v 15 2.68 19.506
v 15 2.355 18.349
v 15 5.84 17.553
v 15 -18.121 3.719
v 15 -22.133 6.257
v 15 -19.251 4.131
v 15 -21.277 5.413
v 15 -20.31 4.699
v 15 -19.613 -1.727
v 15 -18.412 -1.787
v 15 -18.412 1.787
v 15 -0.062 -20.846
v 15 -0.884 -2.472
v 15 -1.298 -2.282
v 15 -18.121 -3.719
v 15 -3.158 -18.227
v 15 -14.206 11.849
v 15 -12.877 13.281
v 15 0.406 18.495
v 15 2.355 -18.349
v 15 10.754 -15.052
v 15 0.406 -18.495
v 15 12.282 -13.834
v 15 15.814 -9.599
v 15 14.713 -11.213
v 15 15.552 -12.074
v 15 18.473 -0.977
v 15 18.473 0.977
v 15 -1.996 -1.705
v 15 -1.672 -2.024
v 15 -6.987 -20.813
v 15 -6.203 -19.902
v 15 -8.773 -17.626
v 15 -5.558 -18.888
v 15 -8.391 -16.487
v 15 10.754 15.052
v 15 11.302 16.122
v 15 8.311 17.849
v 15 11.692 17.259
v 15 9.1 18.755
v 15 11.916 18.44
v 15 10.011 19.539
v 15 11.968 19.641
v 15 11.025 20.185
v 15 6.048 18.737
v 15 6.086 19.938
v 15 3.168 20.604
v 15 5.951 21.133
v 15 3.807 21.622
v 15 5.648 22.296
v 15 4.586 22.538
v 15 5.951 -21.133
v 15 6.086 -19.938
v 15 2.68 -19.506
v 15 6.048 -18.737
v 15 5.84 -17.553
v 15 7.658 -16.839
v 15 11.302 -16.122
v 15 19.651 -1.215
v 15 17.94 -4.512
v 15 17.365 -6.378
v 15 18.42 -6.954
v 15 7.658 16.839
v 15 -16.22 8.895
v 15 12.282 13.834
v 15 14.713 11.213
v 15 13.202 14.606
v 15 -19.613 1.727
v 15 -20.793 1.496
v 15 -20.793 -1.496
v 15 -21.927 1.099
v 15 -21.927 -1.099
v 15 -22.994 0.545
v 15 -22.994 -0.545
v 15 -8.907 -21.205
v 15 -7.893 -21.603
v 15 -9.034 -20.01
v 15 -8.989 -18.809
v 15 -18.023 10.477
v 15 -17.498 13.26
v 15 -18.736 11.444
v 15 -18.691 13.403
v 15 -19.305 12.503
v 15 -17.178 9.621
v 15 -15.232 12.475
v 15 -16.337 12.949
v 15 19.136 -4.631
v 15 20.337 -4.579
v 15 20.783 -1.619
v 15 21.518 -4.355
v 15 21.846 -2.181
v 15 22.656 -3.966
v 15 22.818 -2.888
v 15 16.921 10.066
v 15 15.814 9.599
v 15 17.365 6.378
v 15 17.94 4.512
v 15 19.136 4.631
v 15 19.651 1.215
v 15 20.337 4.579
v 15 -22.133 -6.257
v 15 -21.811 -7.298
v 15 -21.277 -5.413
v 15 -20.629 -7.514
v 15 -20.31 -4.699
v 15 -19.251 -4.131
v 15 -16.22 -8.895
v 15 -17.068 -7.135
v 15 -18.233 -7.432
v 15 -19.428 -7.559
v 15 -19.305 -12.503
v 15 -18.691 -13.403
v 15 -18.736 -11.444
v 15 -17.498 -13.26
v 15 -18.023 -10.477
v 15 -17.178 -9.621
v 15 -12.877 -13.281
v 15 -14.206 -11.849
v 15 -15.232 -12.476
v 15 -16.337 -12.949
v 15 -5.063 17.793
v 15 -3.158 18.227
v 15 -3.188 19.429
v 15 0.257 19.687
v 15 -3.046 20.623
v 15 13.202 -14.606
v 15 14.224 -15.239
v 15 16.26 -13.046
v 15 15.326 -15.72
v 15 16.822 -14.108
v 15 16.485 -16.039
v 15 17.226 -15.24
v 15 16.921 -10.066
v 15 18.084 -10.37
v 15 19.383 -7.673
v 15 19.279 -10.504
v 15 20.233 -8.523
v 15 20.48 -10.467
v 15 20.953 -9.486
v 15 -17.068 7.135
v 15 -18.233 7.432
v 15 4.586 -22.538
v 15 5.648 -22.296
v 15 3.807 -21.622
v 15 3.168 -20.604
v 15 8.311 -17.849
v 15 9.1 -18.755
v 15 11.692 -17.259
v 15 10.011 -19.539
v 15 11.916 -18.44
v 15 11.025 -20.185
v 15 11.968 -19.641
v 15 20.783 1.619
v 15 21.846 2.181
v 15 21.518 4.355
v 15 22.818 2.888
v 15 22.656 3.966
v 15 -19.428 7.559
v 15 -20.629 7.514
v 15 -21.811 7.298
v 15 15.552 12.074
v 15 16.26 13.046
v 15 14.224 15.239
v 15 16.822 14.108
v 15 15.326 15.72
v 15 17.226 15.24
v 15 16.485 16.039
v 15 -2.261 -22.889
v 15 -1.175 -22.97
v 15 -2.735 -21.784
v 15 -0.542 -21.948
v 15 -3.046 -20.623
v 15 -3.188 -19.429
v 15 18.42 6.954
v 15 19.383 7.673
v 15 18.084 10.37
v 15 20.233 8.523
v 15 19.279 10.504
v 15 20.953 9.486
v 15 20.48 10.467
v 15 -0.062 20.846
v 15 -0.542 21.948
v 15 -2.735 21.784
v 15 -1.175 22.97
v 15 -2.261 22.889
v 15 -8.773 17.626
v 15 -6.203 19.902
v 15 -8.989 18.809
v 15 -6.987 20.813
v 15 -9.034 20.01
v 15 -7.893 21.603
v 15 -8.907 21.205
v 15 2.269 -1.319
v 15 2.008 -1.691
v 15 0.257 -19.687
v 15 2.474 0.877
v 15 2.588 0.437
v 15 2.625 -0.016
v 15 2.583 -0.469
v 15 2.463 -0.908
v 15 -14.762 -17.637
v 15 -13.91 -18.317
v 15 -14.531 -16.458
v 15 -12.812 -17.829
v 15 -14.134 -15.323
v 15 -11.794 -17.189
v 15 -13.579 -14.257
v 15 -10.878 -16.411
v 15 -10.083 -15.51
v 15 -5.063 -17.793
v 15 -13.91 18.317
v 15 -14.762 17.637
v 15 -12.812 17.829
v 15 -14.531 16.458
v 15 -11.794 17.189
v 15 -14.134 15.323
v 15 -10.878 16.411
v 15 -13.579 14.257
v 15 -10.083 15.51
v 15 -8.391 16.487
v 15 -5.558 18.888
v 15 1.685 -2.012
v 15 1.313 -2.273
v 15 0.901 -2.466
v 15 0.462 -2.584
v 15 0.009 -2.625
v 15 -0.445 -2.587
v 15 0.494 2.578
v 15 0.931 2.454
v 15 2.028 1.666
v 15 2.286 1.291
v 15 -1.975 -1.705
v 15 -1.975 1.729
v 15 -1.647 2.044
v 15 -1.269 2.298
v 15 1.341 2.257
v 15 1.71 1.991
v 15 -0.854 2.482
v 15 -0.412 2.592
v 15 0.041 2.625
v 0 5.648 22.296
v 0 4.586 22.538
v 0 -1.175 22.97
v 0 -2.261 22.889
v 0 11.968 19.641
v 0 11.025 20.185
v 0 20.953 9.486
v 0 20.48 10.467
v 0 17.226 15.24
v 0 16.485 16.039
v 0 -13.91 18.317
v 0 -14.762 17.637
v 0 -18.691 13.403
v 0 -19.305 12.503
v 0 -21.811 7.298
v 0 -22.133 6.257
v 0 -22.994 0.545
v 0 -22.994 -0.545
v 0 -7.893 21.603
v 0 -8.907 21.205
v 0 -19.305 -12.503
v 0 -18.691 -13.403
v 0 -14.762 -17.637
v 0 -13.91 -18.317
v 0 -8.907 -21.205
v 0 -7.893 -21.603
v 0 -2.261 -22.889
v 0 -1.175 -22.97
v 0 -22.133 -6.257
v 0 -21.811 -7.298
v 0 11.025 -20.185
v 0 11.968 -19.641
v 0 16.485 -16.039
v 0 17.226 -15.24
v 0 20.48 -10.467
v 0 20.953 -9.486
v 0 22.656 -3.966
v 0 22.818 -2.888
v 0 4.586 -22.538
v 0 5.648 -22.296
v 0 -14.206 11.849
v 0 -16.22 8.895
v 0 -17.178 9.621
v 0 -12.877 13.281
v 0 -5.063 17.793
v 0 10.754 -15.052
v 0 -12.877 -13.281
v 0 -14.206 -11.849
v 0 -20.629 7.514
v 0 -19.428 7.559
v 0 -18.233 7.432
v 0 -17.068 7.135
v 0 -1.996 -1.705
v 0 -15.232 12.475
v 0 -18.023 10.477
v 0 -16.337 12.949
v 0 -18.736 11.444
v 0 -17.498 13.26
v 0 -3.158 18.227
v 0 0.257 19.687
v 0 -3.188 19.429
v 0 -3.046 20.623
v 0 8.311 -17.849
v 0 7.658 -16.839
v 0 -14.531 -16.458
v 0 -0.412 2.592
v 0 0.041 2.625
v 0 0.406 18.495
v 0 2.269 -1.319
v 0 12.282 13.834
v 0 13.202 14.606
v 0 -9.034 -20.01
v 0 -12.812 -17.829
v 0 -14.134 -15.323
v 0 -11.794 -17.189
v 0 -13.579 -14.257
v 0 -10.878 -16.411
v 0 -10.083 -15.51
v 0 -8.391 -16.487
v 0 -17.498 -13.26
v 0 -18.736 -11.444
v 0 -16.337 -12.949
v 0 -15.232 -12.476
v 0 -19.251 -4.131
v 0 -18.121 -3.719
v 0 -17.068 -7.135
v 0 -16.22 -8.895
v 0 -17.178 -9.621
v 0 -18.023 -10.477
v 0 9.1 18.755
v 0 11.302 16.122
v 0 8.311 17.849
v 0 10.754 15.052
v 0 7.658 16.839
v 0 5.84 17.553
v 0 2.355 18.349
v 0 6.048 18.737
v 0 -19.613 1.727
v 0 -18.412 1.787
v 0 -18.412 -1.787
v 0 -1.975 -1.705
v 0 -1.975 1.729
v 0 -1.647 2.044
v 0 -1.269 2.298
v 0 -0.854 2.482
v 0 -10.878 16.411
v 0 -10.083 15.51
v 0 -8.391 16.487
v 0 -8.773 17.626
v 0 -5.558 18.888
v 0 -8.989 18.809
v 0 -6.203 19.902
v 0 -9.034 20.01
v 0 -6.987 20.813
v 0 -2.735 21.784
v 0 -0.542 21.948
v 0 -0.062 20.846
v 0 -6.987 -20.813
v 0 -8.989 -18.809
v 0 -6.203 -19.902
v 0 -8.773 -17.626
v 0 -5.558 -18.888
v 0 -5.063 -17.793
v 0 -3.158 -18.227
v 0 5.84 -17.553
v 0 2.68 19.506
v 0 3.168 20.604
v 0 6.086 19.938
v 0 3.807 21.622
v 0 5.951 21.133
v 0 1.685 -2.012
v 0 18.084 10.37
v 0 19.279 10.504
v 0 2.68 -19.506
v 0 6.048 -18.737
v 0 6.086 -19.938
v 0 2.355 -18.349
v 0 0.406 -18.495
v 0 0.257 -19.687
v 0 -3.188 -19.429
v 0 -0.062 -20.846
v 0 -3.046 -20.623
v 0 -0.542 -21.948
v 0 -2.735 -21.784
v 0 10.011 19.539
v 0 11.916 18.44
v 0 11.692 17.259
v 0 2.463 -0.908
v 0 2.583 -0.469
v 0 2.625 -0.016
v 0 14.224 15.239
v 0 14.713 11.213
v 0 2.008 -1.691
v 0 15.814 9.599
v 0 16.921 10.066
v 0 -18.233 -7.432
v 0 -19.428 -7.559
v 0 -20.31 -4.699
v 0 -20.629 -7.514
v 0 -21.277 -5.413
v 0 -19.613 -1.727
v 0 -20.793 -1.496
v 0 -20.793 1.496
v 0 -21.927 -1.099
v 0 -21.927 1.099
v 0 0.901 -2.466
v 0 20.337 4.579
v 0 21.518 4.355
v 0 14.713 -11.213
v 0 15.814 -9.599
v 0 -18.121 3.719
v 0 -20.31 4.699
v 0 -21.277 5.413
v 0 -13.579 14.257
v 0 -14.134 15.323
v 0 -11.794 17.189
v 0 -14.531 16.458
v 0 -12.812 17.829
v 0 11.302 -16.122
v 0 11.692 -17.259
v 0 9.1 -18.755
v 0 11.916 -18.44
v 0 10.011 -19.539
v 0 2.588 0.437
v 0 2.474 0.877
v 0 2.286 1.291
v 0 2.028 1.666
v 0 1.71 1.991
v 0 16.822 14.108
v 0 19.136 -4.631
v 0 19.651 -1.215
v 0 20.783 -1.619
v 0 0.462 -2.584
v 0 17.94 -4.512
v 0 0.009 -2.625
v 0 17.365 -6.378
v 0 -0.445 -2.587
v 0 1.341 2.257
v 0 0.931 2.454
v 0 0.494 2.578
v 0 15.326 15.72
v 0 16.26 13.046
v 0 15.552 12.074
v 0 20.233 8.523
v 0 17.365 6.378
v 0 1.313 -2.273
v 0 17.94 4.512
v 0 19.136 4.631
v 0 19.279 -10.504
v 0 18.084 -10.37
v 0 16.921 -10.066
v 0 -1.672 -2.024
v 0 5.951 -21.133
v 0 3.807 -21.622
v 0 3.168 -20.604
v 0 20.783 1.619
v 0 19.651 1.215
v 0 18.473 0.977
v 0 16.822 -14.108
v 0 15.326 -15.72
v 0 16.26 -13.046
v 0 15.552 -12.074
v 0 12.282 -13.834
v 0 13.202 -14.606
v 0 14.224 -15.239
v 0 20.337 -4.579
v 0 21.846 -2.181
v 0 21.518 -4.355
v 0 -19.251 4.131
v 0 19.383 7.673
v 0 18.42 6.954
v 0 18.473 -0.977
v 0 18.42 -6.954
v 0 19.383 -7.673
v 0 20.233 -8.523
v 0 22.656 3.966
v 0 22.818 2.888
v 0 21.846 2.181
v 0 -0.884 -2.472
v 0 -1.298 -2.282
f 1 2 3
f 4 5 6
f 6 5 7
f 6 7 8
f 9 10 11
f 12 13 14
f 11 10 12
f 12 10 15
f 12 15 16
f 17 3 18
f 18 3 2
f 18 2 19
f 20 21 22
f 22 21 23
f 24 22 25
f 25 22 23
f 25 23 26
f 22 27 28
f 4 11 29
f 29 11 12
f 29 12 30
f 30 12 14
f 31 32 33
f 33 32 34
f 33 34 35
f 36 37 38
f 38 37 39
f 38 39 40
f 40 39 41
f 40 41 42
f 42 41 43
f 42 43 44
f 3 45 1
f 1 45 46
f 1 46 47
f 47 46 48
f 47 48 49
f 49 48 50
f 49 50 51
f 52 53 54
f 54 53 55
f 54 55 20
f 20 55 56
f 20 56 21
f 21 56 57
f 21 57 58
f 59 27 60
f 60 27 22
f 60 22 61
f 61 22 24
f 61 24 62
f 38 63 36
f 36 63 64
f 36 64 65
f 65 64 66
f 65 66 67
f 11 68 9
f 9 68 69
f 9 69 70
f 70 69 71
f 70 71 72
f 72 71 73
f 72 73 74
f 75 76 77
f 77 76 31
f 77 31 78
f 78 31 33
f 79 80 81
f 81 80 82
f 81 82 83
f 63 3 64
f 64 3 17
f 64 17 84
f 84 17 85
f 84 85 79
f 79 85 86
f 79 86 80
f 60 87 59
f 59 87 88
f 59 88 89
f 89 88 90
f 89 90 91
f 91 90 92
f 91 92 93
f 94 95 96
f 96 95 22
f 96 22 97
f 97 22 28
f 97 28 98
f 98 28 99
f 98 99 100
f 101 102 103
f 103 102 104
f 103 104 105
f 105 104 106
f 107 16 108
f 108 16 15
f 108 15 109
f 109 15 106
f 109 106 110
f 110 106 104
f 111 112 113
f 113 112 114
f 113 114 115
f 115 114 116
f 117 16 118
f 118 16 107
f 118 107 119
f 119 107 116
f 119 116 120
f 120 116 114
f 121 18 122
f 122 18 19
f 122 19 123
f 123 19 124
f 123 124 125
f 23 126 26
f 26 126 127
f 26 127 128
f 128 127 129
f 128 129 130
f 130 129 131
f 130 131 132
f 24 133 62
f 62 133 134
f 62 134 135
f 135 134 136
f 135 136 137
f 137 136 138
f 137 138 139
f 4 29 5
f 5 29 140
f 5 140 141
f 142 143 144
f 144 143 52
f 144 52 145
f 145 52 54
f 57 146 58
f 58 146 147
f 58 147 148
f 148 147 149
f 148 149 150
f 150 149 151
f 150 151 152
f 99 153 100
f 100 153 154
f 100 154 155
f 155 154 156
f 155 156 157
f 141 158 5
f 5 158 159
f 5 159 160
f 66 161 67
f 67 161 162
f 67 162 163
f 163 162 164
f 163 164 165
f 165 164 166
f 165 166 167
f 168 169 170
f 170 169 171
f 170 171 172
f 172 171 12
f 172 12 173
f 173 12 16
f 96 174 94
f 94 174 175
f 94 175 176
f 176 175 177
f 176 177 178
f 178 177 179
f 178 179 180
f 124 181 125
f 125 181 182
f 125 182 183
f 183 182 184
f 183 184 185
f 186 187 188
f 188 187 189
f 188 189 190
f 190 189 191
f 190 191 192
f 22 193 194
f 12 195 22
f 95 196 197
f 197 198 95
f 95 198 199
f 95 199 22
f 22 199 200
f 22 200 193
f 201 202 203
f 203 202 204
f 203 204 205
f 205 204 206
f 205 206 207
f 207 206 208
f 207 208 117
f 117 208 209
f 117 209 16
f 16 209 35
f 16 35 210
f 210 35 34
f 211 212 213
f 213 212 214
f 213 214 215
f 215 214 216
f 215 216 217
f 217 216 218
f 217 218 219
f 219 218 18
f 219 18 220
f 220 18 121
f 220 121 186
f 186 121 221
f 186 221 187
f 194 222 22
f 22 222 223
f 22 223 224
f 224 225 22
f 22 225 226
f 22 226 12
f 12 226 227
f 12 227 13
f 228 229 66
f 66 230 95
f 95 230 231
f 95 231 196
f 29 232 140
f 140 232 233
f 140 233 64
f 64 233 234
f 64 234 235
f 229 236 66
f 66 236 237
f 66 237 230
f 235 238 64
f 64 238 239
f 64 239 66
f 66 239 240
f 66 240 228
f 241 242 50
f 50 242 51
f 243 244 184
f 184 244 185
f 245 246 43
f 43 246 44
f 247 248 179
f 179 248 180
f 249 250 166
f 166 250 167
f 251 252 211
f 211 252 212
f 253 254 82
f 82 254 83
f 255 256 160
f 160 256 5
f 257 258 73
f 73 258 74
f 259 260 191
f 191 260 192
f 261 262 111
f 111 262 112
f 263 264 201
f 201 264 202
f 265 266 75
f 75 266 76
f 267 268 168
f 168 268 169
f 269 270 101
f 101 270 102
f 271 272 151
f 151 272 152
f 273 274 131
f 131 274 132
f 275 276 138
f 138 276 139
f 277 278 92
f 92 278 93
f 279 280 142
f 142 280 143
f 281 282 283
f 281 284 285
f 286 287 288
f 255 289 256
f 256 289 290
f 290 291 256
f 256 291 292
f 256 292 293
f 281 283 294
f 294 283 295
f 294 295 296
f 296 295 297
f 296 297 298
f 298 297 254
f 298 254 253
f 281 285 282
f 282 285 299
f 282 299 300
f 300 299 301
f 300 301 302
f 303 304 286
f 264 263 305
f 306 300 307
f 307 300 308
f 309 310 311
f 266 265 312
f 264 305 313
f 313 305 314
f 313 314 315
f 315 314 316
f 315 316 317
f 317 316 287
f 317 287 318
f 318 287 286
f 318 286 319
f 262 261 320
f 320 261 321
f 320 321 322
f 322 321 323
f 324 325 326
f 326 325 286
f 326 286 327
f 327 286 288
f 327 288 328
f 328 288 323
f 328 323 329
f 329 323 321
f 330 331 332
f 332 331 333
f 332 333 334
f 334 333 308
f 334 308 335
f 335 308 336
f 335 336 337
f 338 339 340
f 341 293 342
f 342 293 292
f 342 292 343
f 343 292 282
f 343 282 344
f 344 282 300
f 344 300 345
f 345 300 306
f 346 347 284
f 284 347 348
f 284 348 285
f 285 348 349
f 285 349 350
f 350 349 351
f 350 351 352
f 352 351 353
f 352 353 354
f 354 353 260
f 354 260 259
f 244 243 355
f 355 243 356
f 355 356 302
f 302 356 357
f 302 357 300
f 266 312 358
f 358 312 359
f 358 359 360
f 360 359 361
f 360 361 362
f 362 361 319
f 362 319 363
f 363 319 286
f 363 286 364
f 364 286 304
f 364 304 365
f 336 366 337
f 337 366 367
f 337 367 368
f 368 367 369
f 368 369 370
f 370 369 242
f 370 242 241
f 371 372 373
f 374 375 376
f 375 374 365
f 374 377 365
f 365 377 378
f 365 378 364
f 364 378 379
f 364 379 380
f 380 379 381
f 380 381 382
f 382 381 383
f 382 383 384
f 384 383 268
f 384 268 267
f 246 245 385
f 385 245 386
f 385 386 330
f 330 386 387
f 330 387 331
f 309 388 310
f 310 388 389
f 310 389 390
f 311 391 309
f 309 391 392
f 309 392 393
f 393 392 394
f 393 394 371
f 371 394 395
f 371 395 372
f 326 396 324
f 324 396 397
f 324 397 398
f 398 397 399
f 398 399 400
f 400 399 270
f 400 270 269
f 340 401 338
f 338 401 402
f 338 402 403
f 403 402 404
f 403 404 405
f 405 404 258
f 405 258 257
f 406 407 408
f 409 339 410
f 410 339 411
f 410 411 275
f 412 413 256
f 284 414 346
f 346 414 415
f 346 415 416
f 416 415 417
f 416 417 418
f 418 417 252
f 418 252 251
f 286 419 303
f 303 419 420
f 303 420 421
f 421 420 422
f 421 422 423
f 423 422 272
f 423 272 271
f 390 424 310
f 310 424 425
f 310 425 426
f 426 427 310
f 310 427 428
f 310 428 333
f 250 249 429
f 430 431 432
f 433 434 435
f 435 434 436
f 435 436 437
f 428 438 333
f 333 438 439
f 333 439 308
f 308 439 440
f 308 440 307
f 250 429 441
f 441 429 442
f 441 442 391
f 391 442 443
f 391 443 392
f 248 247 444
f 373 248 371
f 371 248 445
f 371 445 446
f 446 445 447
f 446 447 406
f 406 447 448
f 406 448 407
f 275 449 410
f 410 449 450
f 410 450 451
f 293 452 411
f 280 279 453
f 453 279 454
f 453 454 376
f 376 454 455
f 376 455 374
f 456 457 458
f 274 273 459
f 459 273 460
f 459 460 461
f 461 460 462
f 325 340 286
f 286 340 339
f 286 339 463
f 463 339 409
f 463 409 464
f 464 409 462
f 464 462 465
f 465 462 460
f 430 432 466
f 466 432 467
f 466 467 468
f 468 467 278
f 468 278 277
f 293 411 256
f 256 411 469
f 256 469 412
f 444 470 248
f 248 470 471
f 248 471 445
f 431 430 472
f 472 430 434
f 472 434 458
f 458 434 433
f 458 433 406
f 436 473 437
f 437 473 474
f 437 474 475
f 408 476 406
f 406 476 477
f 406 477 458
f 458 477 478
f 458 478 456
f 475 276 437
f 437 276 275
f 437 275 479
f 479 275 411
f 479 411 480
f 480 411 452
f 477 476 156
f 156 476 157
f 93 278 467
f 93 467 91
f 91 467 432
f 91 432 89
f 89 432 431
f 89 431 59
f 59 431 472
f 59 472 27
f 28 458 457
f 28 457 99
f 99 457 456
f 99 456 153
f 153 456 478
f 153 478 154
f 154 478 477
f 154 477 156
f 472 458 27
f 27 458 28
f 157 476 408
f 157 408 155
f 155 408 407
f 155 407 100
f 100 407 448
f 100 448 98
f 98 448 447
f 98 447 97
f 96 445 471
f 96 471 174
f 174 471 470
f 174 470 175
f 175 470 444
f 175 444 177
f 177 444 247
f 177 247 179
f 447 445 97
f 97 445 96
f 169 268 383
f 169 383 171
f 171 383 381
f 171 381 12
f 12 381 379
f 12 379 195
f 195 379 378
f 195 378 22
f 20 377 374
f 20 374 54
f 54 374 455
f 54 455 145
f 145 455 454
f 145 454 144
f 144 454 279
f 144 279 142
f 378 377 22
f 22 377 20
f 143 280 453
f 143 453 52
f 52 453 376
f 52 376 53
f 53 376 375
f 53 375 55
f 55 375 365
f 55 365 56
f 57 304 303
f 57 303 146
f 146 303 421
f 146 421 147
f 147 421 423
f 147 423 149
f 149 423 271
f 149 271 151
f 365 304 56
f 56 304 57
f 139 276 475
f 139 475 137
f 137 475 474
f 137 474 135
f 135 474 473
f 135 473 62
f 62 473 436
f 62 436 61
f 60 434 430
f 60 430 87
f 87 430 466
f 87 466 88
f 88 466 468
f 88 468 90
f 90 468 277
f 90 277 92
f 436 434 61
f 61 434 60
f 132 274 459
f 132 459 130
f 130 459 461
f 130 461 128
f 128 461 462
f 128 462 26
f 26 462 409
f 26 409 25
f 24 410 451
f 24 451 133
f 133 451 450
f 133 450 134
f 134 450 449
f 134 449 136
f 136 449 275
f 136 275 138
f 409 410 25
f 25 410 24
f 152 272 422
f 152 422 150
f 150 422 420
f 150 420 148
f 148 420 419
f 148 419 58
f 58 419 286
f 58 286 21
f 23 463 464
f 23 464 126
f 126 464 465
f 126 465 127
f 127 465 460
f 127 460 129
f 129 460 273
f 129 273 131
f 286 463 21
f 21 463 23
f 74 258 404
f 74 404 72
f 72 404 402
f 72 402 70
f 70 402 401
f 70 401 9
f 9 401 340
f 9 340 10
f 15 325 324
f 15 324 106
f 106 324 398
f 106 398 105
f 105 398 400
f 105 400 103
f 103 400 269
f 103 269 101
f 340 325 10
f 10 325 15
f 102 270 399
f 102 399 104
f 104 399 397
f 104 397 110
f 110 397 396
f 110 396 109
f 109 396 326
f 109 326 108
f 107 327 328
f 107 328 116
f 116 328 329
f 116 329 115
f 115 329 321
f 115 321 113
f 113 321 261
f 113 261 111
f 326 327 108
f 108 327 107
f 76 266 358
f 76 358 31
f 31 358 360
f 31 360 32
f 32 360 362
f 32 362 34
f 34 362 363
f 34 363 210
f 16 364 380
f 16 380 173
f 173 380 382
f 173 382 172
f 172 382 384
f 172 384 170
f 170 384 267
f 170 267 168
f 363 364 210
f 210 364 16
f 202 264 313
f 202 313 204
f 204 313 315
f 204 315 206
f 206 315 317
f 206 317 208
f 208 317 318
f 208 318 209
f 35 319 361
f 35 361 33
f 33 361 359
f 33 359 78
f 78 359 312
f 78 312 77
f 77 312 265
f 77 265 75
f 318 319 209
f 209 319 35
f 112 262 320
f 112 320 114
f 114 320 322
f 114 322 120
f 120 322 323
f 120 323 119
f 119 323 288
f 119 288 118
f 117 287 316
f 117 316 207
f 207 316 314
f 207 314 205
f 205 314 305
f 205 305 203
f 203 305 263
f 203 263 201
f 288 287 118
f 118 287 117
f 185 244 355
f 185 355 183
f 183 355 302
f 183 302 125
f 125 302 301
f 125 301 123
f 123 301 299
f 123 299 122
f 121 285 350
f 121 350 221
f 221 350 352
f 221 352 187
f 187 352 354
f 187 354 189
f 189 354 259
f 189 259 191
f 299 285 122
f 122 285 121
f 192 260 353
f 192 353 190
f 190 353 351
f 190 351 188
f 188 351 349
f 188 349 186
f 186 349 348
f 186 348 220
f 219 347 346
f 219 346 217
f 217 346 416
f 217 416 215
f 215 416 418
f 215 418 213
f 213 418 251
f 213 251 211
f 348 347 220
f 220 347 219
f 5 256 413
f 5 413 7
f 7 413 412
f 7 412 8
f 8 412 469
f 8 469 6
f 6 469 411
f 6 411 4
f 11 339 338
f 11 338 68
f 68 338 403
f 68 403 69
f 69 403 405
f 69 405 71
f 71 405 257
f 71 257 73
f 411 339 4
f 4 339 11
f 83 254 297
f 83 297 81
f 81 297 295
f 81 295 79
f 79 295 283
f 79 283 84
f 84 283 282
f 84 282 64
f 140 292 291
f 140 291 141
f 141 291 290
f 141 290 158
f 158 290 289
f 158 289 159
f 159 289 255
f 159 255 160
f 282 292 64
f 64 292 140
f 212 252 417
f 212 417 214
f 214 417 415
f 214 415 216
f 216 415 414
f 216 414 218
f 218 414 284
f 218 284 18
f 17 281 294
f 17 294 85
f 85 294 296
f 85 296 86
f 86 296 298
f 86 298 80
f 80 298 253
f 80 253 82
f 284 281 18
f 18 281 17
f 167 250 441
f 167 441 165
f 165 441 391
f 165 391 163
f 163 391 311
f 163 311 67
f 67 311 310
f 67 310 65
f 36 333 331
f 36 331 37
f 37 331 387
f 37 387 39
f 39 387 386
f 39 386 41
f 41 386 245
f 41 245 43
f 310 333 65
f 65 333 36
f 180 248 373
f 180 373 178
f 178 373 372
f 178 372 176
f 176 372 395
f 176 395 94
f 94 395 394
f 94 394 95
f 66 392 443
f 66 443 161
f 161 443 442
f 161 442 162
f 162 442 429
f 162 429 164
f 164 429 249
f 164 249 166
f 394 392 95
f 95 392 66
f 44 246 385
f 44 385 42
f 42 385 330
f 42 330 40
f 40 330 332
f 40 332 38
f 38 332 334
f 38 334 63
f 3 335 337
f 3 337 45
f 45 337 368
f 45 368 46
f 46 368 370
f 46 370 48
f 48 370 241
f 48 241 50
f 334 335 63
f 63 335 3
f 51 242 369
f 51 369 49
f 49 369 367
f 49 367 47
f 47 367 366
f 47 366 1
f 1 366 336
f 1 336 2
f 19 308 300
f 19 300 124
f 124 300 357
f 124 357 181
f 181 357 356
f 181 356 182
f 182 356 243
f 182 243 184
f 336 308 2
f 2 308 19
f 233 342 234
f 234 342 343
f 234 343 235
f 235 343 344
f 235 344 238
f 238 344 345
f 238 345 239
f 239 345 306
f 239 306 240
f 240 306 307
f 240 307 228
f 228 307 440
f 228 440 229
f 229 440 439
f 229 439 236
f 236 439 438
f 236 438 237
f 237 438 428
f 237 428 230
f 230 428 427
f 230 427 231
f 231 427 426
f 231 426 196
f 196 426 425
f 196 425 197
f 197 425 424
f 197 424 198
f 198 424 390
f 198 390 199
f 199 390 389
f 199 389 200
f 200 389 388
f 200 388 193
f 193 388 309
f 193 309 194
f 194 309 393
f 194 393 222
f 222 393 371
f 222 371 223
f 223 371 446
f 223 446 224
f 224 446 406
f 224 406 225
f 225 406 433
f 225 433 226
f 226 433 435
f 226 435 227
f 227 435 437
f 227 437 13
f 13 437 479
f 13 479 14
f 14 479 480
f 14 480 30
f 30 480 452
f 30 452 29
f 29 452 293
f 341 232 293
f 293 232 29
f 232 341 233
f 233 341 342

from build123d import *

# Parameters (mm, degrees)
BASPROSKE_W         = 15
BASPROSKE_H         = 23
TOOTHCUT_DEPTH      = 36.818989377
TEETHCUTS_COUNT     = 21
TEETHCUTS_ANGLE     = 342.857142857
BORSKE_R            = 2.5
BORE_DEPTH          = 50.0000508
SKETCH_1_R          = 2.625
CUT_EXTRUDE_1_DEPTH = 15
SKETCH_3_W          = 3.458323293
SKETCH_3_H          = 0.848920995
EXTRUDE_1_DEPTH     = 15


with BuildPart() as part:
    # BasProSke → Base-Revolve (revolve)
    with BuildSketch(Plane(origin=(0, 0, 0), x_dir=(1, 0, 0), z_dir=(0, 1, 0)), mode=Mode.PRIVATE) as base_revolve_sk:
        with Locations((7.5, 11.5)):
            Rectangle(BASPROSKE_W, BASPROSKE_H)
    revolve(base_revolve_sk.sketch.rotate(Axis((-10, 0, 0), (1, 0, 0)), 180), axis=Axis((-10, 0, 0), (1, 0, 0)))

    # TooCutSke → ToothCut (cut, through all)
    with BuildSketch(Plane(origin=(0, 0, 0), x_dir=(0, 0, -1), z_dir=(1, 0, 0))):
        with BuildLine():
            ThreePointArc((0.976779145, 18.473194188), (0, 18.499), (-0.976779145, 18.473194188))
            ThreePointArc((-0.976779145, 18.473194188), (-1.625451341, 20.797249275), (-2.90802115, 22.841025768))
            ThreePointArc((-2.90802115, 22.841025768), (0, 23.0254), (2.90802115, 22.841025768))
            ThreePointArc((2.90802115, 22.841025768), (1.625451341, 20.797249275), (0.976779145, 18.473194188))
        make_face()
    toothcut = extrude(amount=TOOTHCUT_DEPTH, mode=Mode.SUBTRACT)

    # TeethCuts: ToothCut ×21 about axis
    teethcuts_axis = Axis((-10, 0, 0), (1, 0, 0))
    for i in range(1, TEETHCUTS_COUNT):
        add(toothcut.rotate(teethcuts_axis, i * TEETHCUTS_ANGLE / (TEETHCUTS_COUNT - 1)), mode=Mode.SUBTRACT)

    # BorSke → Bore (cut, symmetric)
    with BuildSketch(Plane(origin=(0, 0, 0), x_dir=(0, 0, -1), z_dir=(1, 0, 0))):
        with Locations(Location((0, 0, 0), (0, 0, 180))):
            Circle(BORSKE_R)
    extrude(amount=BORE_DEPTH, both=True, mode=Mode.SUBTRACT)

    # 草圖1 → 除料-伸長1 (cut)
    with BuildSketch(Plane.ZY):
        Circle(SKETCH_1_R)
    extrude(amount=-CUT_EXTRUDE_1_DEPTH, mode=Mode.SUBTRACT)

    # 草圖3 → 填料-伸長1 (add)
    with BuildSketch(Plane.ZY):
        with Locations((0.024656151, -2.399460498)):
            Rectangle(SKETCH_3_W, SKETCH_3_H)
    extrude(amount=-EXTRUDE_1_DEPTH)


solid = part.part
